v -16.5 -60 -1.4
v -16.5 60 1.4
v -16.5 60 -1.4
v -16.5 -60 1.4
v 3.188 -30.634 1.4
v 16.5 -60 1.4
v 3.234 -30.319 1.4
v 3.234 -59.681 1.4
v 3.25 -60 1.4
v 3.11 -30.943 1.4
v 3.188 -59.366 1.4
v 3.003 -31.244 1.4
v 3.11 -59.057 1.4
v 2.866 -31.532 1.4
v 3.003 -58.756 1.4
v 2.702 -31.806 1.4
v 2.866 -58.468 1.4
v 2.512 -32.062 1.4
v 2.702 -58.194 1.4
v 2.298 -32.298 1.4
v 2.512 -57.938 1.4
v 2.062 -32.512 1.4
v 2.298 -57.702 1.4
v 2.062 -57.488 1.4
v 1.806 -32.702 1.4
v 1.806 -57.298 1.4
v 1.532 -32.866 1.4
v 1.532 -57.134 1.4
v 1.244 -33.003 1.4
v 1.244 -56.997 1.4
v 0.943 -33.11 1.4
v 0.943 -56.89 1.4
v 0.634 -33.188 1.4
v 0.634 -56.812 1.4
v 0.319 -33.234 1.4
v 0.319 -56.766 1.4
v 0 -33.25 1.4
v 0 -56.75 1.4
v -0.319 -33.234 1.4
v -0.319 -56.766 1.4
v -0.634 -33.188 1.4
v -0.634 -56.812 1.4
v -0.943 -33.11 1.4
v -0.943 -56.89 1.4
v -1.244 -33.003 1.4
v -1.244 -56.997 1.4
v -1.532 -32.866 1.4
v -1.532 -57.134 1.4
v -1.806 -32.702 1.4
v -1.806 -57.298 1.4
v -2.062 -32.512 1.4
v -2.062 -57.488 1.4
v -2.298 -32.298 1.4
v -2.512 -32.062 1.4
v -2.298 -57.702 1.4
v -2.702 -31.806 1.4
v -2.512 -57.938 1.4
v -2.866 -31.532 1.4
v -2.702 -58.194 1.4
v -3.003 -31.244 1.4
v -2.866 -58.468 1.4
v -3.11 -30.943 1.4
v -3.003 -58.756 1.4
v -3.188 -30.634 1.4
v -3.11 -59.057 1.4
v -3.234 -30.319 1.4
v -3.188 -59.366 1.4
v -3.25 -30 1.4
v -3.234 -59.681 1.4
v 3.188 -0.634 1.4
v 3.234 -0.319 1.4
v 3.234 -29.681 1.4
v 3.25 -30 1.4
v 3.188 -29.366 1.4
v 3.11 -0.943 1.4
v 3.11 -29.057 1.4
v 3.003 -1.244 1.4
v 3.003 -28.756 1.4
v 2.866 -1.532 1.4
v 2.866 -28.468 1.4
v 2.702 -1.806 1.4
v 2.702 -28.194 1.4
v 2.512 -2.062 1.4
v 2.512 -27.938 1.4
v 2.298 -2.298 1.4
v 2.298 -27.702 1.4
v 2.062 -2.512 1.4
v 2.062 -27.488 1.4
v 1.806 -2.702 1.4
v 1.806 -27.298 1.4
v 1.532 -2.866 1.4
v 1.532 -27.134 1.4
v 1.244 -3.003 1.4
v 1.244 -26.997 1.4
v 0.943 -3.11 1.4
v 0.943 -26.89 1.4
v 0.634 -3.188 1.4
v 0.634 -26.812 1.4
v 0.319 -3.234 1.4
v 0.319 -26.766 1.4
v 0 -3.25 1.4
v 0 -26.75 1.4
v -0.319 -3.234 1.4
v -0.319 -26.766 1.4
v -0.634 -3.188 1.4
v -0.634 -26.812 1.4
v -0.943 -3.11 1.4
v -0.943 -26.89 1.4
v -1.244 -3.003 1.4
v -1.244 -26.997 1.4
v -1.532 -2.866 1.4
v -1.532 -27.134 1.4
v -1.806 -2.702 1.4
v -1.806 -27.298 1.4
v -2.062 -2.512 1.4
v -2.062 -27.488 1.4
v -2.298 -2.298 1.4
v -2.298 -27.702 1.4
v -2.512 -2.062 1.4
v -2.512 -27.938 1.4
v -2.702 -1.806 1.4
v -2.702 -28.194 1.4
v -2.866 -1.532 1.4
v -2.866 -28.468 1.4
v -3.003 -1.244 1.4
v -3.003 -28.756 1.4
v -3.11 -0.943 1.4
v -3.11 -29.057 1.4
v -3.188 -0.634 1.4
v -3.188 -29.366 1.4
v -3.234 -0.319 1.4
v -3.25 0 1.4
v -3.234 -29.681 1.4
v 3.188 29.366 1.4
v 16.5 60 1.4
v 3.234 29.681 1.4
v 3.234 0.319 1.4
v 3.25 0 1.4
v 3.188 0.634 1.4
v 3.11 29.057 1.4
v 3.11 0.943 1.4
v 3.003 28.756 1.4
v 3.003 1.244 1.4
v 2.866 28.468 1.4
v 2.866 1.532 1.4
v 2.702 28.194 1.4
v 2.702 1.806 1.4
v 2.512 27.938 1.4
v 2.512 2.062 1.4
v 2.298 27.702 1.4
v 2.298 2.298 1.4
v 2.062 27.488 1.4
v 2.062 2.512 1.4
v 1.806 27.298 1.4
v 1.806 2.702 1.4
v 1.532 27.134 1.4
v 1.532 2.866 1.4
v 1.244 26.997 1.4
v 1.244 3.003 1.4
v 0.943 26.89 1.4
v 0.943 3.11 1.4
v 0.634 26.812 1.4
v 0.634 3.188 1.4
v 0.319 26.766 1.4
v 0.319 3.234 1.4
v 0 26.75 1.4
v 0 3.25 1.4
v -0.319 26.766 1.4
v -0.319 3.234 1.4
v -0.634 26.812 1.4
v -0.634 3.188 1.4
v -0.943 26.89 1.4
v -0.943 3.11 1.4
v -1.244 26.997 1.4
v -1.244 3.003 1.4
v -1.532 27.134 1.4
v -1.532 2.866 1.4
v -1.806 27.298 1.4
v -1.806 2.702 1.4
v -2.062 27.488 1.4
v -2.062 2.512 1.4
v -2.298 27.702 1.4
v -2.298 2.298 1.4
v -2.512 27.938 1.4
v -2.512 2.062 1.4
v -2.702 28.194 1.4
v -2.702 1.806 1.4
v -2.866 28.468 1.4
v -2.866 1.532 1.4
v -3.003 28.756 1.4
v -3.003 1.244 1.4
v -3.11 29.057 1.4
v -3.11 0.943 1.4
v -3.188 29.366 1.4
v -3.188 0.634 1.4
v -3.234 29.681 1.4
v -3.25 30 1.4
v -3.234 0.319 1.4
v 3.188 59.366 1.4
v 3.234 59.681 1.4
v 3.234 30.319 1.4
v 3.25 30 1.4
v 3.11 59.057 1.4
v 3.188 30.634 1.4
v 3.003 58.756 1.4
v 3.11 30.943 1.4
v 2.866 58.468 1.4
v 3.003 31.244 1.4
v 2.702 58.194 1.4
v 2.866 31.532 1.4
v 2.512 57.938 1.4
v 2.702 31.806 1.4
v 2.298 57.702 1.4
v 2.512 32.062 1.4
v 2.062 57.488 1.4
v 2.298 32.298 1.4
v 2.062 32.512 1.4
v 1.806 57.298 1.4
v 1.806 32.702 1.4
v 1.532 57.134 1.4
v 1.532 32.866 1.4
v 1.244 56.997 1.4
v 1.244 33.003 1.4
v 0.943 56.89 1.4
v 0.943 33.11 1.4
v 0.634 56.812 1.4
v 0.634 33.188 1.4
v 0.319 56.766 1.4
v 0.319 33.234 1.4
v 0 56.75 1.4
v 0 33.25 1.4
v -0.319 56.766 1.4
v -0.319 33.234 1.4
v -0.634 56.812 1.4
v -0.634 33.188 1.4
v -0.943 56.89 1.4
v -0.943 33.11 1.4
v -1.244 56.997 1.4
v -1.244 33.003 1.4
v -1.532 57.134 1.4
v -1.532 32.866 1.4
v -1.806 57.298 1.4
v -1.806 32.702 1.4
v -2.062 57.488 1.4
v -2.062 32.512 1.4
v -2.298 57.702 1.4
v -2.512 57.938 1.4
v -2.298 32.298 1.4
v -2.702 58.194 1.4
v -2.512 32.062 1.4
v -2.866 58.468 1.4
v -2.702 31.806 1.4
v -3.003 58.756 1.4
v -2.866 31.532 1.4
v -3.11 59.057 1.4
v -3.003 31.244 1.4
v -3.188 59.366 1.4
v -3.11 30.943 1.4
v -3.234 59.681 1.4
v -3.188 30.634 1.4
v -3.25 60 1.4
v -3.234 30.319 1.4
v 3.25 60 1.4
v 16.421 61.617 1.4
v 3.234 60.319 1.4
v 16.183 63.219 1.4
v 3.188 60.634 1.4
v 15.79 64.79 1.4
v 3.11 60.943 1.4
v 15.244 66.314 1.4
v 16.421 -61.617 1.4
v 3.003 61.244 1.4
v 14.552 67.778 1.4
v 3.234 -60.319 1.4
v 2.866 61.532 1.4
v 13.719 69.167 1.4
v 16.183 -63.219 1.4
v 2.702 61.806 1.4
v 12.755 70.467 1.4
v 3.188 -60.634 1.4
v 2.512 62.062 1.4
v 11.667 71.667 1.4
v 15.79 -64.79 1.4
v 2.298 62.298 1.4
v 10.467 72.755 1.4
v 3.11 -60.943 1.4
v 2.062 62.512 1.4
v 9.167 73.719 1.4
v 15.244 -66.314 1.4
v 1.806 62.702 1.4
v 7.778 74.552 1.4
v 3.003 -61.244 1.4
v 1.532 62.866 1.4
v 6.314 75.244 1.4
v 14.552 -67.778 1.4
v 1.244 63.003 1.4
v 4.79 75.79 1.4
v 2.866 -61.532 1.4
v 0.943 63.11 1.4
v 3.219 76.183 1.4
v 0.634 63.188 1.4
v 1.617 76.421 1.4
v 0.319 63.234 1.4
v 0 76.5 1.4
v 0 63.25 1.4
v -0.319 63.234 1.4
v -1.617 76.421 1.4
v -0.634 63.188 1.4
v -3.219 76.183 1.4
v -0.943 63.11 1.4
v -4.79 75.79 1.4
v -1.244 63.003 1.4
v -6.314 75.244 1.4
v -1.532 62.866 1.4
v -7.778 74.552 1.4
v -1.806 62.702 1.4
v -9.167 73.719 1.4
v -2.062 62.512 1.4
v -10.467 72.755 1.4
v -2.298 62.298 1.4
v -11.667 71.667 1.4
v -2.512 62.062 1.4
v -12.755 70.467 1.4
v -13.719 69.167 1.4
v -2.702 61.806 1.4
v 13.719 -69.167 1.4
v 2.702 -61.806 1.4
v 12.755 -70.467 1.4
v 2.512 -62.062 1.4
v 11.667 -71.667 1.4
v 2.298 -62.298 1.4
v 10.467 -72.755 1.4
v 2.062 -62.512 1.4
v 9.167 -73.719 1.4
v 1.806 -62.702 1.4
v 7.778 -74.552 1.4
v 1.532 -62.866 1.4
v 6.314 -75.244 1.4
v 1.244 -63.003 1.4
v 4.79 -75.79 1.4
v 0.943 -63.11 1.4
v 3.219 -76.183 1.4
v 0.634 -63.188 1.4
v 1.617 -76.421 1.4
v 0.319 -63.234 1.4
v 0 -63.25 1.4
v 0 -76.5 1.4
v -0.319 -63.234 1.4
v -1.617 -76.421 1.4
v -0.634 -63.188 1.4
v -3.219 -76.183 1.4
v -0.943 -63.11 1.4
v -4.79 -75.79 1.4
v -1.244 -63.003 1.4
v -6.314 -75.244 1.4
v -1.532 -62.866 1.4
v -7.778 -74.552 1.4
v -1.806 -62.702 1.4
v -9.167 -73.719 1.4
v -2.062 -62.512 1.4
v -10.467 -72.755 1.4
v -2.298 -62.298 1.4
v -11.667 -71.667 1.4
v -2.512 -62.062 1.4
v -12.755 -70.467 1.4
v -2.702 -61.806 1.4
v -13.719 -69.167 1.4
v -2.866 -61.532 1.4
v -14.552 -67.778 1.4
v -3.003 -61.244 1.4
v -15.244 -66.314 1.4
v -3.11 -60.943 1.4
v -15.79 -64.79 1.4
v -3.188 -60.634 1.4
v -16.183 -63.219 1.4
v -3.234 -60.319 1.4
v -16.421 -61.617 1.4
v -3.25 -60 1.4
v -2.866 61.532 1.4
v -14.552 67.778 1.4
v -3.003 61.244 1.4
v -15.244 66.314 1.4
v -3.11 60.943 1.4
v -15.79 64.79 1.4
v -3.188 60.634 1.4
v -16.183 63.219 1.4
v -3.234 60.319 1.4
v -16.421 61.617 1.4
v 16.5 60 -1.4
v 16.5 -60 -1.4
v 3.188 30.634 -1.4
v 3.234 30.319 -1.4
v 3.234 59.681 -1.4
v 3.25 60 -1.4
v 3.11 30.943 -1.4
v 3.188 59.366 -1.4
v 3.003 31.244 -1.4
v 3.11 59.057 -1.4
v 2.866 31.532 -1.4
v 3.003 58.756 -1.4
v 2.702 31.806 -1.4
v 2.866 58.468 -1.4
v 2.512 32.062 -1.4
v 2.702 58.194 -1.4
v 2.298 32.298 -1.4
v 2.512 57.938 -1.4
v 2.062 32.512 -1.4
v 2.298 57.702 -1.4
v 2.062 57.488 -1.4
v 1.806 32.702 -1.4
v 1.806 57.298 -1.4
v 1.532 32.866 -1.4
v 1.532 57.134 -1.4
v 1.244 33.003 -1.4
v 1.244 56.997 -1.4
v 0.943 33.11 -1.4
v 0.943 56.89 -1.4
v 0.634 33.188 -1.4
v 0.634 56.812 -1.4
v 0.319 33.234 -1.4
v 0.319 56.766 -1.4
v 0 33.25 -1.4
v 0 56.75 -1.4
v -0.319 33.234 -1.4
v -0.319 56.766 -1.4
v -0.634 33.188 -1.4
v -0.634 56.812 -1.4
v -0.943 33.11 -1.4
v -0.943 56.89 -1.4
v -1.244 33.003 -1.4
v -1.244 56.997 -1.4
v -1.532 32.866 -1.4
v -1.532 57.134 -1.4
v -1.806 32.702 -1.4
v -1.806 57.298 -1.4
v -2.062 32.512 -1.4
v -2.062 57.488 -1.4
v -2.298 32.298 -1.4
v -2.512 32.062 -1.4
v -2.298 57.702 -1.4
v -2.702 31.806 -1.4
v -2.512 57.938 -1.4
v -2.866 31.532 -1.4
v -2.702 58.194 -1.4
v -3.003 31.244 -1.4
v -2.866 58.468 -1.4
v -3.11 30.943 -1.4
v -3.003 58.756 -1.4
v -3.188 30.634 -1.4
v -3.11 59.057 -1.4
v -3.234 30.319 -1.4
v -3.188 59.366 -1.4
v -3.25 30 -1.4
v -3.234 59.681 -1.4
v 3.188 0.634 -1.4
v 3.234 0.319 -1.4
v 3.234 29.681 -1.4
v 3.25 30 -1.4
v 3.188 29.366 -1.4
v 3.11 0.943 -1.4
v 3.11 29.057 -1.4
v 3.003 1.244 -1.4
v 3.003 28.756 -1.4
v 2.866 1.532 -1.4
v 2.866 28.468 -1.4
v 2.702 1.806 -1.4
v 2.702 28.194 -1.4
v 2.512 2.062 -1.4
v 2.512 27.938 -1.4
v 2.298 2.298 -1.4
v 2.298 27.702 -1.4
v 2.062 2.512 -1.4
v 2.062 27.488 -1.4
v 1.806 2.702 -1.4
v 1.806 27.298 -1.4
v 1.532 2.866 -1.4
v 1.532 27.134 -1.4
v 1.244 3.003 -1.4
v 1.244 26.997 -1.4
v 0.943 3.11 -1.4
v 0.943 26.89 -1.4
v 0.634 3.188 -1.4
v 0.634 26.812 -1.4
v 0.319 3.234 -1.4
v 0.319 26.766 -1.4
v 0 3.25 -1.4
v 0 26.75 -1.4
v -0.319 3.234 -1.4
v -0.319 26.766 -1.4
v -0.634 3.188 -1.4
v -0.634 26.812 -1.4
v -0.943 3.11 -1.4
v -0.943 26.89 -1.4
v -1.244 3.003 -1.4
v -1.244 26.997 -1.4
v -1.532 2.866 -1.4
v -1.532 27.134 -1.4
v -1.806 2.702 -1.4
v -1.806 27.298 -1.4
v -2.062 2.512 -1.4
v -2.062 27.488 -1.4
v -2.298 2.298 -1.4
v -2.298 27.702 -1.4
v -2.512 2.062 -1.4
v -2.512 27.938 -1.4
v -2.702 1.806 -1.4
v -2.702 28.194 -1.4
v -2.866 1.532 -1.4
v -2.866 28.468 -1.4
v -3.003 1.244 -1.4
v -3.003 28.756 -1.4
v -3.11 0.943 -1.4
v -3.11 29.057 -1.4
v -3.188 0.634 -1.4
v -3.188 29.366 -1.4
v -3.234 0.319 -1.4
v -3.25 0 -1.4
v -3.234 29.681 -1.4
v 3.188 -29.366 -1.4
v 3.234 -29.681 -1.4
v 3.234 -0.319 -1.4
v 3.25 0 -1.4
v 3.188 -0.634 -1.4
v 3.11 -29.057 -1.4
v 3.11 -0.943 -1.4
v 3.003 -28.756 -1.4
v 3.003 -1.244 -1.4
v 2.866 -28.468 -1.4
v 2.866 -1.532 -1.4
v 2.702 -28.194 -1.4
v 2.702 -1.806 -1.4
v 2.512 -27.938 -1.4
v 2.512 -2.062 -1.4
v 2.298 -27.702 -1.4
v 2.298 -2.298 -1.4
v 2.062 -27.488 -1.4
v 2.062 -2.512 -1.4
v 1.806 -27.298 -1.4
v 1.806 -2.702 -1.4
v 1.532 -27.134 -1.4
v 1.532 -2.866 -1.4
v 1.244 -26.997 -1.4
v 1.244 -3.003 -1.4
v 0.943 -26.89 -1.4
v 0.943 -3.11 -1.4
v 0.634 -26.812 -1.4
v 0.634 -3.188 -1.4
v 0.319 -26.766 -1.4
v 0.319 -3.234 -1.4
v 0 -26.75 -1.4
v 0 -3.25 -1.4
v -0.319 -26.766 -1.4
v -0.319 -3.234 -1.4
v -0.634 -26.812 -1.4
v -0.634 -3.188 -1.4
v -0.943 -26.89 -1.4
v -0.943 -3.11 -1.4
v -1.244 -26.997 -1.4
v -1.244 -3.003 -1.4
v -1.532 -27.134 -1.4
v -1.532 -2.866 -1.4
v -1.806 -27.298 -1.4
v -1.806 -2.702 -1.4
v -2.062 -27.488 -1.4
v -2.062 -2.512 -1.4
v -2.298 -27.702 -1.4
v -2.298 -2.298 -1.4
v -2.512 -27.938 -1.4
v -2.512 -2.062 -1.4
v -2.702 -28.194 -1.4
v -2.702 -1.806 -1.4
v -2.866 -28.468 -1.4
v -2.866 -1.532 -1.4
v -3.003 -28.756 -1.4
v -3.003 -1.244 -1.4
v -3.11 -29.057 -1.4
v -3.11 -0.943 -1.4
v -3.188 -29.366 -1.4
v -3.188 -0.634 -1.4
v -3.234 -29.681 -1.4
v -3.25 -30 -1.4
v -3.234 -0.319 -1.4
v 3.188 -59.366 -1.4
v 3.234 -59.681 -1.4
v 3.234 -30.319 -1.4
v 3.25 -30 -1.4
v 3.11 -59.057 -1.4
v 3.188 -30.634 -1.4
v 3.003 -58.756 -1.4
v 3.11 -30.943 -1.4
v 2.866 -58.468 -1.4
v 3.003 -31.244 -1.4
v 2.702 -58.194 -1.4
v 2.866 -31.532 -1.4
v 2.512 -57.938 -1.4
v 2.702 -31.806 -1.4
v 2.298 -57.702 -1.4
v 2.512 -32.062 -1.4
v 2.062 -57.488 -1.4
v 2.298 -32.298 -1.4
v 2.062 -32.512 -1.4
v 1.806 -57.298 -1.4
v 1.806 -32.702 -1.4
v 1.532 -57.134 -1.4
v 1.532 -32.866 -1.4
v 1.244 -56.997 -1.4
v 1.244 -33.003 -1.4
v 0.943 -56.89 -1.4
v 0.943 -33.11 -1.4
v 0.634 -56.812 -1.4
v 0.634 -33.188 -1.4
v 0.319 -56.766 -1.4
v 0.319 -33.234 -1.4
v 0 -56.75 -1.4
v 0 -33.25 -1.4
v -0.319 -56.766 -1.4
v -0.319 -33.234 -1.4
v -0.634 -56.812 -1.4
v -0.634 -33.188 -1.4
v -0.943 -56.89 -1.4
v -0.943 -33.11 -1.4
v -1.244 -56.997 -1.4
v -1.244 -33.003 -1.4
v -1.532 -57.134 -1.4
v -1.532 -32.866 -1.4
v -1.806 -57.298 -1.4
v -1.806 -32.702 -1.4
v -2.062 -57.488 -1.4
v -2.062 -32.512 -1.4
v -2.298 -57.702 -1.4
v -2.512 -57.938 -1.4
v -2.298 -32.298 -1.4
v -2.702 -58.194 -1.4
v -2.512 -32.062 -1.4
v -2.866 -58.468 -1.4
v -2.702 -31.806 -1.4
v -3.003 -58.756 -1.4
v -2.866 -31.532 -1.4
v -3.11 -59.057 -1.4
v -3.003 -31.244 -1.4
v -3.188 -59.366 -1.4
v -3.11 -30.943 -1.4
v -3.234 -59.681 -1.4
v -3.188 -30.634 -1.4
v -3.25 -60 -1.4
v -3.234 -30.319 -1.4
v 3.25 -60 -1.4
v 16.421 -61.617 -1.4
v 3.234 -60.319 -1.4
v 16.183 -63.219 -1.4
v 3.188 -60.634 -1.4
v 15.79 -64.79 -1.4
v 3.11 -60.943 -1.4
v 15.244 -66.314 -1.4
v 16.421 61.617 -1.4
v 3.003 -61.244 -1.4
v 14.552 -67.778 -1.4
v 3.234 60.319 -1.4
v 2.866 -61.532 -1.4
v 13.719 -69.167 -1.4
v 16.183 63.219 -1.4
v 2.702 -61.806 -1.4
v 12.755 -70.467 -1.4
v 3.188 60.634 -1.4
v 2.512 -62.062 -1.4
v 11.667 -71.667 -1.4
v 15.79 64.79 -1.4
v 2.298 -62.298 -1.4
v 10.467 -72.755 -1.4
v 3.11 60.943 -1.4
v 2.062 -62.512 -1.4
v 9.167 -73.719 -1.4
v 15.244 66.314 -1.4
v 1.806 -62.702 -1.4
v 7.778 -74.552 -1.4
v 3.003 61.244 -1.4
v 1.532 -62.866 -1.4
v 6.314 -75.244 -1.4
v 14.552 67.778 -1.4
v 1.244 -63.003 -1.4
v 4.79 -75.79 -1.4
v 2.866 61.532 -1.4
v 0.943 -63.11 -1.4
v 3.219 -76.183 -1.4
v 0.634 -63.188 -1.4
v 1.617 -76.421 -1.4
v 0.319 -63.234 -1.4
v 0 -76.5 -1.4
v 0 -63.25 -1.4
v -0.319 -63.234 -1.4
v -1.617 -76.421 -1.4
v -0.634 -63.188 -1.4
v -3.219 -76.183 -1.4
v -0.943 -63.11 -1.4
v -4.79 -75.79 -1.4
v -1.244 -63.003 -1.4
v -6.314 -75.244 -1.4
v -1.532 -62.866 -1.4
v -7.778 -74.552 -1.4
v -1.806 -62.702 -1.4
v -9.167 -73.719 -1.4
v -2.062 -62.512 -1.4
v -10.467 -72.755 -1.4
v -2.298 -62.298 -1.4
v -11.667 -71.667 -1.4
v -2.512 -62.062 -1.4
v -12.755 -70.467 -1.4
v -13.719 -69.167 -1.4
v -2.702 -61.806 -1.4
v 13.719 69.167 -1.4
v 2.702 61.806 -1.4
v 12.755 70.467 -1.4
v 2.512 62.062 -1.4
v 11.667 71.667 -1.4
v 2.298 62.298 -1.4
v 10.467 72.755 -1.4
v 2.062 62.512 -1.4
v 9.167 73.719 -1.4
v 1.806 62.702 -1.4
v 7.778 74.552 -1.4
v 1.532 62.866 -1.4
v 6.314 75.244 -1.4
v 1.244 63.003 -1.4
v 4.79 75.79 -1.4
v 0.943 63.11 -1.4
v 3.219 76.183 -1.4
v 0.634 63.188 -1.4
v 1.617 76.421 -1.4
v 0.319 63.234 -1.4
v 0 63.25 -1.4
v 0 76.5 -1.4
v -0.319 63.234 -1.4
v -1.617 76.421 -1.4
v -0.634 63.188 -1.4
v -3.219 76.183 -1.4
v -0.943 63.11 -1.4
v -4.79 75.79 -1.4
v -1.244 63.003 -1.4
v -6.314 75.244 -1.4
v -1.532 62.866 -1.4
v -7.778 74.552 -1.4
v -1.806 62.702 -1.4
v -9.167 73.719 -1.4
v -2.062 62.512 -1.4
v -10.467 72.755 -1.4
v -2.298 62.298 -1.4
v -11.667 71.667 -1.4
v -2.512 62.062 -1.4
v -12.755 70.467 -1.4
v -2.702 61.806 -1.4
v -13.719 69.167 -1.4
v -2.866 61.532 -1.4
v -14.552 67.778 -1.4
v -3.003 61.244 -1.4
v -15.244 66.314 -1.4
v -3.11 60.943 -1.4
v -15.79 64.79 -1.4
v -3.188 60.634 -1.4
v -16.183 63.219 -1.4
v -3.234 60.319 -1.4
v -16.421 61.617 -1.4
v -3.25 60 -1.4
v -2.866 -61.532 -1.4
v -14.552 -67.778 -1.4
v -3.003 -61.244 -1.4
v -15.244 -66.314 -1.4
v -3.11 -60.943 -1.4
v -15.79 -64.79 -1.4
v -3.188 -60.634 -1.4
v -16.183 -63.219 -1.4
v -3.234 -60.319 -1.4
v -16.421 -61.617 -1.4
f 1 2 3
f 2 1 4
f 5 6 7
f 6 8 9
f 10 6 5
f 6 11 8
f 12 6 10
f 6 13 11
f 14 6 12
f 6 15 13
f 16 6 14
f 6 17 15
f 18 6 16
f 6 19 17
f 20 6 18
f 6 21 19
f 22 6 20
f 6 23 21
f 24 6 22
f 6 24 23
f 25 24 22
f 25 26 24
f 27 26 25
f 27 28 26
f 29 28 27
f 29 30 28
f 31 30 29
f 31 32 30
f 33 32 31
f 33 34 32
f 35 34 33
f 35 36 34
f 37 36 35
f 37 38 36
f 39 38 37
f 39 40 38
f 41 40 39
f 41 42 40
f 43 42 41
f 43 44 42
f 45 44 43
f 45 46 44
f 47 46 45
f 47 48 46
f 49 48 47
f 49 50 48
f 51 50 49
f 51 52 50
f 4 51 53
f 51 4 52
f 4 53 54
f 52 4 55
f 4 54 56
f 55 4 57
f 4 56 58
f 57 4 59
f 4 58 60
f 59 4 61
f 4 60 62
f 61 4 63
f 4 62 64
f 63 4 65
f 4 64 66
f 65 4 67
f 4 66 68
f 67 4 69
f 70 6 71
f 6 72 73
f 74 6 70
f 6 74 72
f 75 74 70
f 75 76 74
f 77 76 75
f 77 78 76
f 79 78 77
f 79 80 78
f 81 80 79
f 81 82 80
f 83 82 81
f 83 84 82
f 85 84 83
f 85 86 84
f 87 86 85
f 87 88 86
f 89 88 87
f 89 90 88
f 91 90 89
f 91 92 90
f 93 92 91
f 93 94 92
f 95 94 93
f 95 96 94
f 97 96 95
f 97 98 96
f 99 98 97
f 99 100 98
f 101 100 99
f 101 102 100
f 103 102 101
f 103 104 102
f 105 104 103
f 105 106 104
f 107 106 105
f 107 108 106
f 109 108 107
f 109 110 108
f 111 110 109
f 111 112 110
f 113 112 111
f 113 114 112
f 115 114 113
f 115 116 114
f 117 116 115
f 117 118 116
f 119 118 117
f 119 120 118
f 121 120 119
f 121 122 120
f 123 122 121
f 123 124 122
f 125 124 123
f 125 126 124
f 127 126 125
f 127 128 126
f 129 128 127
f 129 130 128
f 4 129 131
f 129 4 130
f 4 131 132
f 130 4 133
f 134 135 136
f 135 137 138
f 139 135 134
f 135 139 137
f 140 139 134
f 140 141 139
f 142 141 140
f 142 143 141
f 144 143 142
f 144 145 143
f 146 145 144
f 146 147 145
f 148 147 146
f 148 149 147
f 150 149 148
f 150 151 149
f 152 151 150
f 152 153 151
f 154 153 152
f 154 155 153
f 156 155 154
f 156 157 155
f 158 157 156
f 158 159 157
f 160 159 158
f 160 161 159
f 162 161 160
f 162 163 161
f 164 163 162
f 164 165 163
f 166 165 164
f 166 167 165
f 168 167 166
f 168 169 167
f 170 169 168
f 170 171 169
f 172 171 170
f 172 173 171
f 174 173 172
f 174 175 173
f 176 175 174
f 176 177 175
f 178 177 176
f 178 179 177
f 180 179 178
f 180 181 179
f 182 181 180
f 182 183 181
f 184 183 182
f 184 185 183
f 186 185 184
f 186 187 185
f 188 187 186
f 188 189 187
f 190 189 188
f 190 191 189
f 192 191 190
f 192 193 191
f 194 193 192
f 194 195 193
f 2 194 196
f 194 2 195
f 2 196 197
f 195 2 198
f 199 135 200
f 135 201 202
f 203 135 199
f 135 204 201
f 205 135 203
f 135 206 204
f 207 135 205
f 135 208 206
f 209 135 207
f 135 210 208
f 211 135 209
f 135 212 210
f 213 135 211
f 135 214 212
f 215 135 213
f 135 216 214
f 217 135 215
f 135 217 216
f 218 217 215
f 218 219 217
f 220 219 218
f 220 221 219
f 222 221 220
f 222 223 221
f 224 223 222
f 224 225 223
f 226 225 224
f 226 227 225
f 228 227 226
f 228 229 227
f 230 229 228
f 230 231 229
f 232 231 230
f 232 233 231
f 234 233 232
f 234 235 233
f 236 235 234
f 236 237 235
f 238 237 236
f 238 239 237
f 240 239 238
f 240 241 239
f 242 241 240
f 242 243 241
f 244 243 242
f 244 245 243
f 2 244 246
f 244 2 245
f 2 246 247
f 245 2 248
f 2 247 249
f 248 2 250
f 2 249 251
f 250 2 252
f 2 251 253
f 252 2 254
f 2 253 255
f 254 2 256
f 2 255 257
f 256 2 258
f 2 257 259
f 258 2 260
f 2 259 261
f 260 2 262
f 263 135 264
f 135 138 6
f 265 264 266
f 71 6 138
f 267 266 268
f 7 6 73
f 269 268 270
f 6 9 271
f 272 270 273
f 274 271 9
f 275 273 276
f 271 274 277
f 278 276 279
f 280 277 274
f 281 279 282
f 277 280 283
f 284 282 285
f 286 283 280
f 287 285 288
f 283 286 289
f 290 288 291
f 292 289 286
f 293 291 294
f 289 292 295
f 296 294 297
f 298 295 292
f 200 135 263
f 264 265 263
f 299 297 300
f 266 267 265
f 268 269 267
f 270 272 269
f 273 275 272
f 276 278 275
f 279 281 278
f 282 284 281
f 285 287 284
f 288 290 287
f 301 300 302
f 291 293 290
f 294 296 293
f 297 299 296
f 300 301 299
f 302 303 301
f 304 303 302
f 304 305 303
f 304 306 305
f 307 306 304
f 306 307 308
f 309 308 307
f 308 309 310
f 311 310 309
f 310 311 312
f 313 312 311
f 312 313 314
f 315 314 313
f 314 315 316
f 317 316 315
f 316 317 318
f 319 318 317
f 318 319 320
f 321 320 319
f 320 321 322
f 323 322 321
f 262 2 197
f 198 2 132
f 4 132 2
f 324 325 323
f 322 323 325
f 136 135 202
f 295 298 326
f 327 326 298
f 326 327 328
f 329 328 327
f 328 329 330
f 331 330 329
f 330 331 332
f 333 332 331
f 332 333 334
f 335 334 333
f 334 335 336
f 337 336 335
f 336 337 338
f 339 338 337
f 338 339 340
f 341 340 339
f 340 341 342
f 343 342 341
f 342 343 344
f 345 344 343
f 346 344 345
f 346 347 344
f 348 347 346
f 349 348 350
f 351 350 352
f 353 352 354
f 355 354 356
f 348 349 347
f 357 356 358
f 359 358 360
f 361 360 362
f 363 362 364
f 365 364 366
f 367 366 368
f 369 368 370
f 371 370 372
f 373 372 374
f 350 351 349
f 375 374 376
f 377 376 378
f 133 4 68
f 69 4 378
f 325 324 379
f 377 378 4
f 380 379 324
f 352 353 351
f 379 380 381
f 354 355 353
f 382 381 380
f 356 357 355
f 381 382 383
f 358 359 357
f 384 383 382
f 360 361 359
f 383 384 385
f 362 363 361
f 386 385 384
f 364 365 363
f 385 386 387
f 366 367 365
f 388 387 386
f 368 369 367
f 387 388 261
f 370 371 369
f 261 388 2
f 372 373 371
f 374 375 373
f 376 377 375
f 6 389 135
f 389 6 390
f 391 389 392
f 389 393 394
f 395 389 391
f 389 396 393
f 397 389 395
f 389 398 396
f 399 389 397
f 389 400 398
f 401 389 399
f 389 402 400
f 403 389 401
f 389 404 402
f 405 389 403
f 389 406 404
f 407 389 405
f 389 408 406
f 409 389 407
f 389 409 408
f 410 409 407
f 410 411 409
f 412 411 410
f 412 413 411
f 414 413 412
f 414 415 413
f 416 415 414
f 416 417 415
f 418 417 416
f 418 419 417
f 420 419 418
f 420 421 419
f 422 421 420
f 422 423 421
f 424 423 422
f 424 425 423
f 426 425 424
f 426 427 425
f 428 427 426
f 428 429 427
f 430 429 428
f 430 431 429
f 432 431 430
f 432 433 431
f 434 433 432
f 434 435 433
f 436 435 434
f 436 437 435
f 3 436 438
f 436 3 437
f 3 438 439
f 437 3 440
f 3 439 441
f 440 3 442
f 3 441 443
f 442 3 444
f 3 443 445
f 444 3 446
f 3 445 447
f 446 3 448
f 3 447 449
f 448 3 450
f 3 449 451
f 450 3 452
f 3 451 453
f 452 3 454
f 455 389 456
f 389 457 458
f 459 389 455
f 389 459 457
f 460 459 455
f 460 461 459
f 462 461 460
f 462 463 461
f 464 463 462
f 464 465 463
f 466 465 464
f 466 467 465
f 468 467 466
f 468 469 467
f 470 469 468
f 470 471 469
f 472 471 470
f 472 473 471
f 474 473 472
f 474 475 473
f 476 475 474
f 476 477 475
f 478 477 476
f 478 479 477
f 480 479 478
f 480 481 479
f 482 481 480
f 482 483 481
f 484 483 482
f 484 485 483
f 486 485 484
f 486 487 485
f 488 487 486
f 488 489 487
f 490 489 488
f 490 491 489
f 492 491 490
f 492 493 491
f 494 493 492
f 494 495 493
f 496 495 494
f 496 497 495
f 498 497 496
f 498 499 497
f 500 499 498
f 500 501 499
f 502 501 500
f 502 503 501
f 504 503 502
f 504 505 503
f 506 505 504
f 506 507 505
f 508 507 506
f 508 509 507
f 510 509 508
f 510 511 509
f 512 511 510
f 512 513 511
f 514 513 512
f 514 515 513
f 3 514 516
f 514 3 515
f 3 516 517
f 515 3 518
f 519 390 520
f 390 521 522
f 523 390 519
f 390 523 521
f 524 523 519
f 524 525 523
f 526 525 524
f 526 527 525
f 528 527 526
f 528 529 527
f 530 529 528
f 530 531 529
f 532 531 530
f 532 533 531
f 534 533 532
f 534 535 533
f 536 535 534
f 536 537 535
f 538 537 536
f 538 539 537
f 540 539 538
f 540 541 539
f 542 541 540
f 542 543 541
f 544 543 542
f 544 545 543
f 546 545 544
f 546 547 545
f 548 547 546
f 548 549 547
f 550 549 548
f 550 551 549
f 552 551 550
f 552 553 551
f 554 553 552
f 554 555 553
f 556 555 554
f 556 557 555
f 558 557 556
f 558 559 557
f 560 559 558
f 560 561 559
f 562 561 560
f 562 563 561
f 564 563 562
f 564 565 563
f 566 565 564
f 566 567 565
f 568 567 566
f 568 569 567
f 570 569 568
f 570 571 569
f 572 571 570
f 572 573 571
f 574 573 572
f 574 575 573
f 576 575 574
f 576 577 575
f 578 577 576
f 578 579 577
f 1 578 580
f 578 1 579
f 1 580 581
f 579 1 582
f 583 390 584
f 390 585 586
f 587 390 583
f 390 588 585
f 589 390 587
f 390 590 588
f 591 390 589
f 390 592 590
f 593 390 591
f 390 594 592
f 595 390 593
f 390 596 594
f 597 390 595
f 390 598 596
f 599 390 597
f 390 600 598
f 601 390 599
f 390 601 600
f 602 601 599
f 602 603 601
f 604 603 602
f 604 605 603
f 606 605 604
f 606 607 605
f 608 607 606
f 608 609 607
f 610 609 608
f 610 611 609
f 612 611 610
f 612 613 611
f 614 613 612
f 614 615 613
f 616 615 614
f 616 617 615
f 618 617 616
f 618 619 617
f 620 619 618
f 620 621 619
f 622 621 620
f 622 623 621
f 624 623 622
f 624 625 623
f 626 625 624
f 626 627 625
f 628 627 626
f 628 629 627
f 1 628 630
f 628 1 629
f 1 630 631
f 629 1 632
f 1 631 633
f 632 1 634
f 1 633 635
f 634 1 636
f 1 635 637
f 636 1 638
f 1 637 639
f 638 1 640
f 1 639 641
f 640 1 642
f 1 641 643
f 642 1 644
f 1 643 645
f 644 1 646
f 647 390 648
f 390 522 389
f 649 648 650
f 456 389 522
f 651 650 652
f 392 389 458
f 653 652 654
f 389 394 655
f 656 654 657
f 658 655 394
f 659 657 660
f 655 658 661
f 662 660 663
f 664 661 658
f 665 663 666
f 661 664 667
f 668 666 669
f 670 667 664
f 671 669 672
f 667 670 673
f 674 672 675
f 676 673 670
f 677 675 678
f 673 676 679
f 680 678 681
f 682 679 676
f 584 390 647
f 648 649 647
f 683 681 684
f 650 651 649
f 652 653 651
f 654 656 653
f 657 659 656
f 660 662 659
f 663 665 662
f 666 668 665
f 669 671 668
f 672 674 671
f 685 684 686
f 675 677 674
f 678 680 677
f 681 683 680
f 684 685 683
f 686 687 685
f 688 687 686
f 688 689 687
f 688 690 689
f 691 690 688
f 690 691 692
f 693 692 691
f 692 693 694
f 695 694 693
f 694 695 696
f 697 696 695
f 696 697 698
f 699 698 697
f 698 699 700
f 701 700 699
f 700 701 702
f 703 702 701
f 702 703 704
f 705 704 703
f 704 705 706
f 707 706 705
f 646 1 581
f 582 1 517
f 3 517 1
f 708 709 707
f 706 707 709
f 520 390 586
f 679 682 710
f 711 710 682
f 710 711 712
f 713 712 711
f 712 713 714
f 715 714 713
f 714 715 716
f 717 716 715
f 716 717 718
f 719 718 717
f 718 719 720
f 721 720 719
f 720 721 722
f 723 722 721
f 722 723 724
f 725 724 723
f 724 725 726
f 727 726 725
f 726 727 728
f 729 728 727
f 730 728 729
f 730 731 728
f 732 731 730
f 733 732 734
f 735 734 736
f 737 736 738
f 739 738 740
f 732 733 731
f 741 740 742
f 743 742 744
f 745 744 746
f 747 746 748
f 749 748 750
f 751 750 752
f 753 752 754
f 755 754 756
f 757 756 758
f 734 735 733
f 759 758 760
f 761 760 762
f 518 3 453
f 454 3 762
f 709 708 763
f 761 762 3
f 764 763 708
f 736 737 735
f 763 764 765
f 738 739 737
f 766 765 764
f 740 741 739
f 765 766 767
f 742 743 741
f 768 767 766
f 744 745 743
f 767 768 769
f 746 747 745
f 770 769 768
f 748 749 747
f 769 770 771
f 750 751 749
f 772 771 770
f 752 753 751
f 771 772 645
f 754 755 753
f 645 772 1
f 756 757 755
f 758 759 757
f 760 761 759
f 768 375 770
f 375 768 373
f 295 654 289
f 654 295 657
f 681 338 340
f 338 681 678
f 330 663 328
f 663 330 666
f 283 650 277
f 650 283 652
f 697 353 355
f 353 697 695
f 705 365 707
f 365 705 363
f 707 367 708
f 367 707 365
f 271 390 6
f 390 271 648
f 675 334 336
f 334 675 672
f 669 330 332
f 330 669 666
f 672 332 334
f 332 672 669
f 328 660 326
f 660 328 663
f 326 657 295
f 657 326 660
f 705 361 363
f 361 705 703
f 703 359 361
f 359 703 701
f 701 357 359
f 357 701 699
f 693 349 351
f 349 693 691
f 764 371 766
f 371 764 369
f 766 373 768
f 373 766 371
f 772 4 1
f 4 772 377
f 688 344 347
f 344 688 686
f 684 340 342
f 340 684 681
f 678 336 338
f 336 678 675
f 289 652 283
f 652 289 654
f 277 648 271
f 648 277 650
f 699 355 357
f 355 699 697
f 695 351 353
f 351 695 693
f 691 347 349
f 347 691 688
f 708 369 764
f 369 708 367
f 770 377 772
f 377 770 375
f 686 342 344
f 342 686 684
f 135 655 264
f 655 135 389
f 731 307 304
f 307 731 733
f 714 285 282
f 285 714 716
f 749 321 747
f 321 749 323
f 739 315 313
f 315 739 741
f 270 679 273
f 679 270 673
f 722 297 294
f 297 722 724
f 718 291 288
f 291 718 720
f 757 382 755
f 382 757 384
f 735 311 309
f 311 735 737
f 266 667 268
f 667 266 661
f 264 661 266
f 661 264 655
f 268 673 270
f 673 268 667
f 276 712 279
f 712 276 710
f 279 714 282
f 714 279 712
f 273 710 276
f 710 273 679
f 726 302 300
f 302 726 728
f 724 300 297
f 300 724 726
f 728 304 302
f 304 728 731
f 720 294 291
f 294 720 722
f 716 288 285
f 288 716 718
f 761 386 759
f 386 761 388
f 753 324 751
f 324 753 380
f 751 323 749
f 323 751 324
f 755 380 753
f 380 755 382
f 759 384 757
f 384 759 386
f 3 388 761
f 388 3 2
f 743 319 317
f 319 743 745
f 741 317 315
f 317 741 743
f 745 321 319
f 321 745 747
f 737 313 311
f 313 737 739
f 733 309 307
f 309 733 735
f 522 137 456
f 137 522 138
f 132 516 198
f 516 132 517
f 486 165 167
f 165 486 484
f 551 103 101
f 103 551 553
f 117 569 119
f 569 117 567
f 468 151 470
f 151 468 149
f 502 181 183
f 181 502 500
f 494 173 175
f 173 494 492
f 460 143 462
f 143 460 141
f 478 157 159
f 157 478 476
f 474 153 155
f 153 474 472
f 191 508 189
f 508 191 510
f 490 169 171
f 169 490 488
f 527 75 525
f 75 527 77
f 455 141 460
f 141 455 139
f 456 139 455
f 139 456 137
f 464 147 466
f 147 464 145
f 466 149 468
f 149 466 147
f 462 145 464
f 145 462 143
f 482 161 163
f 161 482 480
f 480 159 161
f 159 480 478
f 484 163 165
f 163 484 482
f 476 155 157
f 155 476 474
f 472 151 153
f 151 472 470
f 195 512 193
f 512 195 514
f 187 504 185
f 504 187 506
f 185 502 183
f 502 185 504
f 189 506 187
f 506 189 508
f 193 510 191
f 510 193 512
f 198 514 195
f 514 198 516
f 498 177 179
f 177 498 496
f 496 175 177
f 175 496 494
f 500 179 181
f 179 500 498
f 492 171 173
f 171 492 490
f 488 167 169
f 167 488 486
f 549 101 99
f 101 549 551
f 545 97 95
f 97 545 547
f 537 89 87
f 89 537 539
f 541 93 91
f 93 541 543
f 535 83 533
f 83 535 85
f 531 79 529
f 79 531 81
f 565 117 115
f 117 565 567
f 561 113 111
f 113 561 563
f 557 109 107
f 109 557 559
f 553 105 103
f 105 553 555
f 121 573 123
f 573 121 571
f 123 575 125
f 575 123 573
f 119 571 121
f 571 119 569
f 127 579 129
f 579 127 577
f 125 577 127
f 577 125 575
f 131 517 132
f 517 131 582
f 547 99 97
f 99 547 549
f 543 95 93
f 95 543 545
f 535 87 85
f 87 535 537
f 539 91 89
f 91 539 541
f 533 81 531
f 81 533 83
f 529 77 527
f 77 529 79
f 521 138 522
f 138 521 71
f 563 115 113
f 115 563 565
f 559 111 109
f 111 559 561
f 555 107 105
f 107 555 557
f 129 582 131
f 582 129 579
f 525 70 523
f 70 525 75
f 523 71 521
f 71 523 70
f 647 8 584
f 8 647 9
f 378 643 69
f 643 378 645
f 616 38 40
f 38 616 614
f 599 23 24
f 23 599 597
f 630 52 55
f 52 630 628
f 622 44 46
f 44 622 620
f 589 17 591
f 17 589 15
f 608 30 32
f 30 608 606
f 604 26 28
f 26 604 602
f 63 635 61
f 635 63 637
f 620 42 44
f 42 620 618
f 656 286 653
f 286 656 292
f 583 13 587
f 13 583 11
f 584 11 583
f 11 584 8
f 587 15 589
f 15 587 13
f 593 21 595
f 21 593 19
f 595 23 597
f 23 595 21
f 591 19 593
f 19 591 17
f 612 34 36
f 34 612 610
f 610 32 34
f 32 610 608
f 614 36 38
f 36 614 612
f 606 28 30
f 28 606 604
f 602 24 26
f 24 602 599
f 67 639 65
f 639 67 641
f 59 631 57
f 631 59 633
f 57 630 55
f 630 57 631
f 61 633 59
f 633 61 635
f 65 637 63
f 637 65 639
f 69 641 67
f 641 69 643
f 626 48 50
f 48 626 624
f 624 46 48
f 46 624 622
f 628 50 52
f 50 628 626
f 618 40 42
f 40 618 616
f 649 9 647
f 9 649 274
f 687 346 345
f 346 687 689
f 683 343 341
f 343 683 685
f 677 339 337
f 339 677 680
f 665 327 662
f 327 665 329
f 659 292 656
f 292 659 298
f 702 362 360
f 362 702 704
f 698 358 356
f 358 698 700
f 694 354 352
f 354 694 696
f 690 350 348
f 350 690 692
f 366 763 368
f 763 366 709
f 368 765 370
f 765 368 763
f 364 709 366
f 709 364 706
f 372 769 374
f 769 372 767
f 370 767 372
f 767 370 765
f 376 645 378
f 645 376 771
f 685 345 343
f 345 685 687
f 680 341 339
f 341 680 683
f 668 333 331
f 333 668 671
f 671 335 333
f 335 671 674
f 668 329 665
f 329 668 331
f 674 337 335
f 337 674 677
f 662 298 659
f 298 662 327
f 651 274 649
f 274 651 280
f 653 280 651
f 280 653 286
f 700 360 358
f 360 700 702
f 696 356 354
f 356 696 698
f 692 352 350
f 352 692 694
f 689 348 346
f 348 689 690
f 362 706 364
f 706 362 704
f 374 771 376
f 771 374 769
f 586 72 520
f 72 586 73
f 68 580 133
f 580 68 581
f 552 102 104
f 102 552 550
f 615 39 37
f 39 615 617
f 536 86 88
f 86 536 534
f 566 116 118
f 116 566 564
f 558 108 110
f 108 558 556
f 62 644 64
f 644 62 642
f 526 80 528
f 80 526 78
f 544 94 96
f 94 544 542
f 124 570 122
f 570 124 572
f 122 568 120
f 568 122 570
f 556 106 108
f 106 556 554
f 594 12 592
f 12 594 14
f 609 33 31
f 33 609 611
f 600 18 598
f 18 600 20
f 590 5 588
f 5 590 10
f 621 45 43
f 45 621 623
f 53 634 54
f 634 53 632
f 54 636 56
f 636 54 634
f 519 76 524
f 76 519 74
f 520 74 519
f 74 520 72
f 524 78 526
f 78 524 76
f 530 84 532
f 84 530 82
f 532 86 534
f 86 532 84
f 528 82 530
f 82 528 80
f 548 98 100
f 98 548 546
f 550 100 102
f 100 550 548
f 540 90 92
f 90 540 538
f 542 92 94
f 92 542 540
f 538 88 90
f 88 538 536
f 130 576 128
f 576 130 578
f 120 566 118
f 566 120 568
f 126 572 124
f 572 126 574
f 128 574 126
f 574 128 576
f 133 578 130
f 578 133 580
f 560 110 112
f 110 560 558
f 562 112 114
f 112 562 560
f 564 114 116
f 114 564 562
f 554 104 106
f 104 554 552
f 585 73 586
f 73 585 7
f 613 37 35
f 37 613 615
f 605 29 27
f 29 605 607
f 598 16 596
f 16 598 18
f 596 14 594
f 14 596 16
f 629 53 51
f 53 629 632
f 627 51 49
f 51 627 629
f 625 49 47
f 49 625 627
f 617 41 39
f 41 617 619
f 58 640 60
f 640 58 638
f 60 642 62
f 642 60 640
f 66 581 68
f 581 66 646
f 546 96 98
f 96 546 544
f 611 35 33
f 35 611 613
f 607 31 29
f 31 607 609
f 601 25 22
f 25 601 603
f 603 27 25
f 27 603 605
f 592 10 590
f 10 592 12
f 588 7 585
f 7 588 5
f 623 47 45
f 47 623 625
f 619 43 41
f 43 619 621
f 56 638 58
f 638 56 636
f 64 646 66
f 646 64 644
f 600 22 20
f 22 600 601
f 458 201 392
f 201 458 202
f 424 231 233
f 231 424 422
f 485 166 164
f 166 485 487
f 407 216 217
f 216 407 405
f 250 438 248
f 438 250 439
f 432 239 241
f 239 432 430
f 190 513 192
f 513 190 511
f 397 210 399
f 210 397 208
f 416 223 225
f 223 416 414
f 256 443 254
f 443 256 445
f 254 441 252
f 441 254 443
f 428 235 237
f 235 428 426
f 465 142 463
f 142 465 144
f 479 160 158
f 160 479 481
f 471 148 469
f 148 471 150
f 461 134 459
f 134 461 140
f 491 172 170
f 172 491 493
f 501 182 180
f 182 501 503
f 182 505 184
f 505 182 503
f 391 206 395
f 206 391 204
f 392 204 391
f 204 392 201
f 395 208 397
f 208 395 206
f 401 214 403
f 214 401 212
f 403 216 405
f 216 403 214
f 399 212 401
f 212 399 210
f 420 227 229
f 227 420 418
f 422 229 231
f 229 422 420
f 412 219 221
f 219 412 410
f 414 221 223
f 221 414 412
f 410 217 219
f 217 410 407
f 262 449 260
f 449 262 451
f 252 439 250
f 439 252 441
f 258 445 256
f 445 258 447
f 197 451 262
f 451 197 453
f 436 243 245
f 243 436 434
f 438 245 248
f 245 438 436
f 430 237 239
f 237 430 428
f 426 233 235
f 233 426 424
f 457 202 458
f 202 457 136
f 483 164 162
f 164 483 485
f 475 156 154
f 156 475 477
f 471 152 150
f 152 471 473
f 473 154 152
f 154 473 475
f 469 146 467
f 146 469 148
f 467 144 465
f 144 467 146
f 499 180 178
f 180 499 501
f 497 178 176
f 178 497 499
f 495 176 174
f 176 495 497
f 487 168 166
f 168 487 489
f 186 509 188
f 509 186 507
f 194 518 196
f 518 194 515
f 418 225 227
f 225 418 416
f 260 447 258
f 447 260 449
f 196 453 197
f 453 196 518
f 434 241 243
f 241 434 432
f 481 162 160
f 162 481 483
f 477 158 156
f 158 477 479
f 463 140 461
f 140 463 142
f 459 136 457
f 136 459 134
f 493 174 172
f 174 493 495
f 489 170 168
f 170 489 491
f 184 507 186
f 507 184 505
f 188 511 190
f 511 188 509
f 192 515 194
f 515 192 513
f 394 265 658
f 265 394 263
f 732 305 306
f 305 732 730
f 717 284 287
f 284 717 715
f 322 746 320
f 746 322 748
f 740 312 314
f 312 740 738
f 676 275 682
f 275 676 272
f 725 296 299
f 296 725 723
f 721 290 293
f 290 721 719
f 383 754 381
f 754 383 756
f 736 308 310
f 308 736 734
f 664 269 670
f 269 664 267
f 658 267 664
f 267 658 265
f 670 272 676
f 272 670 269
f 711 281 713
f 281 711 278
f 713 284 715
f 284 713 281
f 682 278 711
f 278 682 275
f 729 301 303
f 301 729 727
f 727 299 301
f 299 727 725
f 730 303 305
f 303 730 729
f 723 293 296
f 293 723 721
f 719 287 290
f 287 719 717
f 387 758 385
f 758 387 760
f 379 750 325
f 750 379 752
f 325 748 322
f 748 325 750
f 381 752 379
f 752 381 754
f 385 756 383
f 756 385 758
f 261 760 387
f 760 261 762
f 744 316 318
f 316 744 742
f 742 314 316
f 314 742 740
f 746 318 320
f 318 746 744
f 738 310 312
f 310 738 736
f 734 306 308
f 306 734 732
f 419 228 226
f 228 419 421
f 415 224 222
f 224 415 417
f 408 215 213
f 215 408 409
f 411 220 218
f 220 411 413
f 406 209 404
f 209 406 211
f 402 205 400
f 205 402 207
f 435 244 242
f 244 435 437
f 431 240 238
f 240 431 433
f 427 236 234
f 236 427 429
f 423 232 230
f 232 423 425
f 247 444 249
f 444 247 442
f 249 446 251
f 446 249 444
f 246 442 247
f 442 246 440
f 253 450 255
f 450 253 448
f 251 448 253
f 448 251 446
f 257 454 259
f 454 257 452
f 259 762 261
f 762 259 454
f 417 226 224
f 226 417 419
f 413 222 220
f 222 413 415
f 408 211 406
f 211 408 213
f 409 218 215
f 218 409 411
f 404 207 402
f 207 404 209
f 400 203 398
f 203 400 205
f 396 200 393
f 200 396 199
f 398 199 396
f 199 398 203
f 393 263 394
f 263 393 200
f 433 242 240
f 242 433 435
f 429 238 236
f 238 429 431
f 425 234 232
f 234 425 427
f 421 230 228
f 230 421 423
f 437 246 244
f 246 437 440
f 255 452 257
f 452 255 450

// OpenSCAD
// Lasers twin base for figures Lissagous.
// 23.06.2025
$fn = 64;


twin_lasers_base_set();

module twin_lasers_base_set() {
  difference() {
    base();
    holes();
  }
}

module base() {
  cube([33, 120, 2.8], true);
  translate([0, -120/2, 0])
  cylinder(h=2.8, d=33, center=true);
  translate([0, 120/2, 0])
  cylinder(h=2.8, d=33, center=true);
}

module holes() {
  cylinder(h=4, d=6.5, center=true);
  translate([0, -120/2, 0])
  cylinder(h=4, d=6.5, center=true);
  translate([0, -60/2, 0])
  cylinder(h=4, d=6.5, center=true);
  translate([0, 60/2, 0])
  cylinder(h=4, d=6.5, center=true);
  translate([0, 120/2, 0])
  cylinder(h=4, d=6.5, center=true);
}
